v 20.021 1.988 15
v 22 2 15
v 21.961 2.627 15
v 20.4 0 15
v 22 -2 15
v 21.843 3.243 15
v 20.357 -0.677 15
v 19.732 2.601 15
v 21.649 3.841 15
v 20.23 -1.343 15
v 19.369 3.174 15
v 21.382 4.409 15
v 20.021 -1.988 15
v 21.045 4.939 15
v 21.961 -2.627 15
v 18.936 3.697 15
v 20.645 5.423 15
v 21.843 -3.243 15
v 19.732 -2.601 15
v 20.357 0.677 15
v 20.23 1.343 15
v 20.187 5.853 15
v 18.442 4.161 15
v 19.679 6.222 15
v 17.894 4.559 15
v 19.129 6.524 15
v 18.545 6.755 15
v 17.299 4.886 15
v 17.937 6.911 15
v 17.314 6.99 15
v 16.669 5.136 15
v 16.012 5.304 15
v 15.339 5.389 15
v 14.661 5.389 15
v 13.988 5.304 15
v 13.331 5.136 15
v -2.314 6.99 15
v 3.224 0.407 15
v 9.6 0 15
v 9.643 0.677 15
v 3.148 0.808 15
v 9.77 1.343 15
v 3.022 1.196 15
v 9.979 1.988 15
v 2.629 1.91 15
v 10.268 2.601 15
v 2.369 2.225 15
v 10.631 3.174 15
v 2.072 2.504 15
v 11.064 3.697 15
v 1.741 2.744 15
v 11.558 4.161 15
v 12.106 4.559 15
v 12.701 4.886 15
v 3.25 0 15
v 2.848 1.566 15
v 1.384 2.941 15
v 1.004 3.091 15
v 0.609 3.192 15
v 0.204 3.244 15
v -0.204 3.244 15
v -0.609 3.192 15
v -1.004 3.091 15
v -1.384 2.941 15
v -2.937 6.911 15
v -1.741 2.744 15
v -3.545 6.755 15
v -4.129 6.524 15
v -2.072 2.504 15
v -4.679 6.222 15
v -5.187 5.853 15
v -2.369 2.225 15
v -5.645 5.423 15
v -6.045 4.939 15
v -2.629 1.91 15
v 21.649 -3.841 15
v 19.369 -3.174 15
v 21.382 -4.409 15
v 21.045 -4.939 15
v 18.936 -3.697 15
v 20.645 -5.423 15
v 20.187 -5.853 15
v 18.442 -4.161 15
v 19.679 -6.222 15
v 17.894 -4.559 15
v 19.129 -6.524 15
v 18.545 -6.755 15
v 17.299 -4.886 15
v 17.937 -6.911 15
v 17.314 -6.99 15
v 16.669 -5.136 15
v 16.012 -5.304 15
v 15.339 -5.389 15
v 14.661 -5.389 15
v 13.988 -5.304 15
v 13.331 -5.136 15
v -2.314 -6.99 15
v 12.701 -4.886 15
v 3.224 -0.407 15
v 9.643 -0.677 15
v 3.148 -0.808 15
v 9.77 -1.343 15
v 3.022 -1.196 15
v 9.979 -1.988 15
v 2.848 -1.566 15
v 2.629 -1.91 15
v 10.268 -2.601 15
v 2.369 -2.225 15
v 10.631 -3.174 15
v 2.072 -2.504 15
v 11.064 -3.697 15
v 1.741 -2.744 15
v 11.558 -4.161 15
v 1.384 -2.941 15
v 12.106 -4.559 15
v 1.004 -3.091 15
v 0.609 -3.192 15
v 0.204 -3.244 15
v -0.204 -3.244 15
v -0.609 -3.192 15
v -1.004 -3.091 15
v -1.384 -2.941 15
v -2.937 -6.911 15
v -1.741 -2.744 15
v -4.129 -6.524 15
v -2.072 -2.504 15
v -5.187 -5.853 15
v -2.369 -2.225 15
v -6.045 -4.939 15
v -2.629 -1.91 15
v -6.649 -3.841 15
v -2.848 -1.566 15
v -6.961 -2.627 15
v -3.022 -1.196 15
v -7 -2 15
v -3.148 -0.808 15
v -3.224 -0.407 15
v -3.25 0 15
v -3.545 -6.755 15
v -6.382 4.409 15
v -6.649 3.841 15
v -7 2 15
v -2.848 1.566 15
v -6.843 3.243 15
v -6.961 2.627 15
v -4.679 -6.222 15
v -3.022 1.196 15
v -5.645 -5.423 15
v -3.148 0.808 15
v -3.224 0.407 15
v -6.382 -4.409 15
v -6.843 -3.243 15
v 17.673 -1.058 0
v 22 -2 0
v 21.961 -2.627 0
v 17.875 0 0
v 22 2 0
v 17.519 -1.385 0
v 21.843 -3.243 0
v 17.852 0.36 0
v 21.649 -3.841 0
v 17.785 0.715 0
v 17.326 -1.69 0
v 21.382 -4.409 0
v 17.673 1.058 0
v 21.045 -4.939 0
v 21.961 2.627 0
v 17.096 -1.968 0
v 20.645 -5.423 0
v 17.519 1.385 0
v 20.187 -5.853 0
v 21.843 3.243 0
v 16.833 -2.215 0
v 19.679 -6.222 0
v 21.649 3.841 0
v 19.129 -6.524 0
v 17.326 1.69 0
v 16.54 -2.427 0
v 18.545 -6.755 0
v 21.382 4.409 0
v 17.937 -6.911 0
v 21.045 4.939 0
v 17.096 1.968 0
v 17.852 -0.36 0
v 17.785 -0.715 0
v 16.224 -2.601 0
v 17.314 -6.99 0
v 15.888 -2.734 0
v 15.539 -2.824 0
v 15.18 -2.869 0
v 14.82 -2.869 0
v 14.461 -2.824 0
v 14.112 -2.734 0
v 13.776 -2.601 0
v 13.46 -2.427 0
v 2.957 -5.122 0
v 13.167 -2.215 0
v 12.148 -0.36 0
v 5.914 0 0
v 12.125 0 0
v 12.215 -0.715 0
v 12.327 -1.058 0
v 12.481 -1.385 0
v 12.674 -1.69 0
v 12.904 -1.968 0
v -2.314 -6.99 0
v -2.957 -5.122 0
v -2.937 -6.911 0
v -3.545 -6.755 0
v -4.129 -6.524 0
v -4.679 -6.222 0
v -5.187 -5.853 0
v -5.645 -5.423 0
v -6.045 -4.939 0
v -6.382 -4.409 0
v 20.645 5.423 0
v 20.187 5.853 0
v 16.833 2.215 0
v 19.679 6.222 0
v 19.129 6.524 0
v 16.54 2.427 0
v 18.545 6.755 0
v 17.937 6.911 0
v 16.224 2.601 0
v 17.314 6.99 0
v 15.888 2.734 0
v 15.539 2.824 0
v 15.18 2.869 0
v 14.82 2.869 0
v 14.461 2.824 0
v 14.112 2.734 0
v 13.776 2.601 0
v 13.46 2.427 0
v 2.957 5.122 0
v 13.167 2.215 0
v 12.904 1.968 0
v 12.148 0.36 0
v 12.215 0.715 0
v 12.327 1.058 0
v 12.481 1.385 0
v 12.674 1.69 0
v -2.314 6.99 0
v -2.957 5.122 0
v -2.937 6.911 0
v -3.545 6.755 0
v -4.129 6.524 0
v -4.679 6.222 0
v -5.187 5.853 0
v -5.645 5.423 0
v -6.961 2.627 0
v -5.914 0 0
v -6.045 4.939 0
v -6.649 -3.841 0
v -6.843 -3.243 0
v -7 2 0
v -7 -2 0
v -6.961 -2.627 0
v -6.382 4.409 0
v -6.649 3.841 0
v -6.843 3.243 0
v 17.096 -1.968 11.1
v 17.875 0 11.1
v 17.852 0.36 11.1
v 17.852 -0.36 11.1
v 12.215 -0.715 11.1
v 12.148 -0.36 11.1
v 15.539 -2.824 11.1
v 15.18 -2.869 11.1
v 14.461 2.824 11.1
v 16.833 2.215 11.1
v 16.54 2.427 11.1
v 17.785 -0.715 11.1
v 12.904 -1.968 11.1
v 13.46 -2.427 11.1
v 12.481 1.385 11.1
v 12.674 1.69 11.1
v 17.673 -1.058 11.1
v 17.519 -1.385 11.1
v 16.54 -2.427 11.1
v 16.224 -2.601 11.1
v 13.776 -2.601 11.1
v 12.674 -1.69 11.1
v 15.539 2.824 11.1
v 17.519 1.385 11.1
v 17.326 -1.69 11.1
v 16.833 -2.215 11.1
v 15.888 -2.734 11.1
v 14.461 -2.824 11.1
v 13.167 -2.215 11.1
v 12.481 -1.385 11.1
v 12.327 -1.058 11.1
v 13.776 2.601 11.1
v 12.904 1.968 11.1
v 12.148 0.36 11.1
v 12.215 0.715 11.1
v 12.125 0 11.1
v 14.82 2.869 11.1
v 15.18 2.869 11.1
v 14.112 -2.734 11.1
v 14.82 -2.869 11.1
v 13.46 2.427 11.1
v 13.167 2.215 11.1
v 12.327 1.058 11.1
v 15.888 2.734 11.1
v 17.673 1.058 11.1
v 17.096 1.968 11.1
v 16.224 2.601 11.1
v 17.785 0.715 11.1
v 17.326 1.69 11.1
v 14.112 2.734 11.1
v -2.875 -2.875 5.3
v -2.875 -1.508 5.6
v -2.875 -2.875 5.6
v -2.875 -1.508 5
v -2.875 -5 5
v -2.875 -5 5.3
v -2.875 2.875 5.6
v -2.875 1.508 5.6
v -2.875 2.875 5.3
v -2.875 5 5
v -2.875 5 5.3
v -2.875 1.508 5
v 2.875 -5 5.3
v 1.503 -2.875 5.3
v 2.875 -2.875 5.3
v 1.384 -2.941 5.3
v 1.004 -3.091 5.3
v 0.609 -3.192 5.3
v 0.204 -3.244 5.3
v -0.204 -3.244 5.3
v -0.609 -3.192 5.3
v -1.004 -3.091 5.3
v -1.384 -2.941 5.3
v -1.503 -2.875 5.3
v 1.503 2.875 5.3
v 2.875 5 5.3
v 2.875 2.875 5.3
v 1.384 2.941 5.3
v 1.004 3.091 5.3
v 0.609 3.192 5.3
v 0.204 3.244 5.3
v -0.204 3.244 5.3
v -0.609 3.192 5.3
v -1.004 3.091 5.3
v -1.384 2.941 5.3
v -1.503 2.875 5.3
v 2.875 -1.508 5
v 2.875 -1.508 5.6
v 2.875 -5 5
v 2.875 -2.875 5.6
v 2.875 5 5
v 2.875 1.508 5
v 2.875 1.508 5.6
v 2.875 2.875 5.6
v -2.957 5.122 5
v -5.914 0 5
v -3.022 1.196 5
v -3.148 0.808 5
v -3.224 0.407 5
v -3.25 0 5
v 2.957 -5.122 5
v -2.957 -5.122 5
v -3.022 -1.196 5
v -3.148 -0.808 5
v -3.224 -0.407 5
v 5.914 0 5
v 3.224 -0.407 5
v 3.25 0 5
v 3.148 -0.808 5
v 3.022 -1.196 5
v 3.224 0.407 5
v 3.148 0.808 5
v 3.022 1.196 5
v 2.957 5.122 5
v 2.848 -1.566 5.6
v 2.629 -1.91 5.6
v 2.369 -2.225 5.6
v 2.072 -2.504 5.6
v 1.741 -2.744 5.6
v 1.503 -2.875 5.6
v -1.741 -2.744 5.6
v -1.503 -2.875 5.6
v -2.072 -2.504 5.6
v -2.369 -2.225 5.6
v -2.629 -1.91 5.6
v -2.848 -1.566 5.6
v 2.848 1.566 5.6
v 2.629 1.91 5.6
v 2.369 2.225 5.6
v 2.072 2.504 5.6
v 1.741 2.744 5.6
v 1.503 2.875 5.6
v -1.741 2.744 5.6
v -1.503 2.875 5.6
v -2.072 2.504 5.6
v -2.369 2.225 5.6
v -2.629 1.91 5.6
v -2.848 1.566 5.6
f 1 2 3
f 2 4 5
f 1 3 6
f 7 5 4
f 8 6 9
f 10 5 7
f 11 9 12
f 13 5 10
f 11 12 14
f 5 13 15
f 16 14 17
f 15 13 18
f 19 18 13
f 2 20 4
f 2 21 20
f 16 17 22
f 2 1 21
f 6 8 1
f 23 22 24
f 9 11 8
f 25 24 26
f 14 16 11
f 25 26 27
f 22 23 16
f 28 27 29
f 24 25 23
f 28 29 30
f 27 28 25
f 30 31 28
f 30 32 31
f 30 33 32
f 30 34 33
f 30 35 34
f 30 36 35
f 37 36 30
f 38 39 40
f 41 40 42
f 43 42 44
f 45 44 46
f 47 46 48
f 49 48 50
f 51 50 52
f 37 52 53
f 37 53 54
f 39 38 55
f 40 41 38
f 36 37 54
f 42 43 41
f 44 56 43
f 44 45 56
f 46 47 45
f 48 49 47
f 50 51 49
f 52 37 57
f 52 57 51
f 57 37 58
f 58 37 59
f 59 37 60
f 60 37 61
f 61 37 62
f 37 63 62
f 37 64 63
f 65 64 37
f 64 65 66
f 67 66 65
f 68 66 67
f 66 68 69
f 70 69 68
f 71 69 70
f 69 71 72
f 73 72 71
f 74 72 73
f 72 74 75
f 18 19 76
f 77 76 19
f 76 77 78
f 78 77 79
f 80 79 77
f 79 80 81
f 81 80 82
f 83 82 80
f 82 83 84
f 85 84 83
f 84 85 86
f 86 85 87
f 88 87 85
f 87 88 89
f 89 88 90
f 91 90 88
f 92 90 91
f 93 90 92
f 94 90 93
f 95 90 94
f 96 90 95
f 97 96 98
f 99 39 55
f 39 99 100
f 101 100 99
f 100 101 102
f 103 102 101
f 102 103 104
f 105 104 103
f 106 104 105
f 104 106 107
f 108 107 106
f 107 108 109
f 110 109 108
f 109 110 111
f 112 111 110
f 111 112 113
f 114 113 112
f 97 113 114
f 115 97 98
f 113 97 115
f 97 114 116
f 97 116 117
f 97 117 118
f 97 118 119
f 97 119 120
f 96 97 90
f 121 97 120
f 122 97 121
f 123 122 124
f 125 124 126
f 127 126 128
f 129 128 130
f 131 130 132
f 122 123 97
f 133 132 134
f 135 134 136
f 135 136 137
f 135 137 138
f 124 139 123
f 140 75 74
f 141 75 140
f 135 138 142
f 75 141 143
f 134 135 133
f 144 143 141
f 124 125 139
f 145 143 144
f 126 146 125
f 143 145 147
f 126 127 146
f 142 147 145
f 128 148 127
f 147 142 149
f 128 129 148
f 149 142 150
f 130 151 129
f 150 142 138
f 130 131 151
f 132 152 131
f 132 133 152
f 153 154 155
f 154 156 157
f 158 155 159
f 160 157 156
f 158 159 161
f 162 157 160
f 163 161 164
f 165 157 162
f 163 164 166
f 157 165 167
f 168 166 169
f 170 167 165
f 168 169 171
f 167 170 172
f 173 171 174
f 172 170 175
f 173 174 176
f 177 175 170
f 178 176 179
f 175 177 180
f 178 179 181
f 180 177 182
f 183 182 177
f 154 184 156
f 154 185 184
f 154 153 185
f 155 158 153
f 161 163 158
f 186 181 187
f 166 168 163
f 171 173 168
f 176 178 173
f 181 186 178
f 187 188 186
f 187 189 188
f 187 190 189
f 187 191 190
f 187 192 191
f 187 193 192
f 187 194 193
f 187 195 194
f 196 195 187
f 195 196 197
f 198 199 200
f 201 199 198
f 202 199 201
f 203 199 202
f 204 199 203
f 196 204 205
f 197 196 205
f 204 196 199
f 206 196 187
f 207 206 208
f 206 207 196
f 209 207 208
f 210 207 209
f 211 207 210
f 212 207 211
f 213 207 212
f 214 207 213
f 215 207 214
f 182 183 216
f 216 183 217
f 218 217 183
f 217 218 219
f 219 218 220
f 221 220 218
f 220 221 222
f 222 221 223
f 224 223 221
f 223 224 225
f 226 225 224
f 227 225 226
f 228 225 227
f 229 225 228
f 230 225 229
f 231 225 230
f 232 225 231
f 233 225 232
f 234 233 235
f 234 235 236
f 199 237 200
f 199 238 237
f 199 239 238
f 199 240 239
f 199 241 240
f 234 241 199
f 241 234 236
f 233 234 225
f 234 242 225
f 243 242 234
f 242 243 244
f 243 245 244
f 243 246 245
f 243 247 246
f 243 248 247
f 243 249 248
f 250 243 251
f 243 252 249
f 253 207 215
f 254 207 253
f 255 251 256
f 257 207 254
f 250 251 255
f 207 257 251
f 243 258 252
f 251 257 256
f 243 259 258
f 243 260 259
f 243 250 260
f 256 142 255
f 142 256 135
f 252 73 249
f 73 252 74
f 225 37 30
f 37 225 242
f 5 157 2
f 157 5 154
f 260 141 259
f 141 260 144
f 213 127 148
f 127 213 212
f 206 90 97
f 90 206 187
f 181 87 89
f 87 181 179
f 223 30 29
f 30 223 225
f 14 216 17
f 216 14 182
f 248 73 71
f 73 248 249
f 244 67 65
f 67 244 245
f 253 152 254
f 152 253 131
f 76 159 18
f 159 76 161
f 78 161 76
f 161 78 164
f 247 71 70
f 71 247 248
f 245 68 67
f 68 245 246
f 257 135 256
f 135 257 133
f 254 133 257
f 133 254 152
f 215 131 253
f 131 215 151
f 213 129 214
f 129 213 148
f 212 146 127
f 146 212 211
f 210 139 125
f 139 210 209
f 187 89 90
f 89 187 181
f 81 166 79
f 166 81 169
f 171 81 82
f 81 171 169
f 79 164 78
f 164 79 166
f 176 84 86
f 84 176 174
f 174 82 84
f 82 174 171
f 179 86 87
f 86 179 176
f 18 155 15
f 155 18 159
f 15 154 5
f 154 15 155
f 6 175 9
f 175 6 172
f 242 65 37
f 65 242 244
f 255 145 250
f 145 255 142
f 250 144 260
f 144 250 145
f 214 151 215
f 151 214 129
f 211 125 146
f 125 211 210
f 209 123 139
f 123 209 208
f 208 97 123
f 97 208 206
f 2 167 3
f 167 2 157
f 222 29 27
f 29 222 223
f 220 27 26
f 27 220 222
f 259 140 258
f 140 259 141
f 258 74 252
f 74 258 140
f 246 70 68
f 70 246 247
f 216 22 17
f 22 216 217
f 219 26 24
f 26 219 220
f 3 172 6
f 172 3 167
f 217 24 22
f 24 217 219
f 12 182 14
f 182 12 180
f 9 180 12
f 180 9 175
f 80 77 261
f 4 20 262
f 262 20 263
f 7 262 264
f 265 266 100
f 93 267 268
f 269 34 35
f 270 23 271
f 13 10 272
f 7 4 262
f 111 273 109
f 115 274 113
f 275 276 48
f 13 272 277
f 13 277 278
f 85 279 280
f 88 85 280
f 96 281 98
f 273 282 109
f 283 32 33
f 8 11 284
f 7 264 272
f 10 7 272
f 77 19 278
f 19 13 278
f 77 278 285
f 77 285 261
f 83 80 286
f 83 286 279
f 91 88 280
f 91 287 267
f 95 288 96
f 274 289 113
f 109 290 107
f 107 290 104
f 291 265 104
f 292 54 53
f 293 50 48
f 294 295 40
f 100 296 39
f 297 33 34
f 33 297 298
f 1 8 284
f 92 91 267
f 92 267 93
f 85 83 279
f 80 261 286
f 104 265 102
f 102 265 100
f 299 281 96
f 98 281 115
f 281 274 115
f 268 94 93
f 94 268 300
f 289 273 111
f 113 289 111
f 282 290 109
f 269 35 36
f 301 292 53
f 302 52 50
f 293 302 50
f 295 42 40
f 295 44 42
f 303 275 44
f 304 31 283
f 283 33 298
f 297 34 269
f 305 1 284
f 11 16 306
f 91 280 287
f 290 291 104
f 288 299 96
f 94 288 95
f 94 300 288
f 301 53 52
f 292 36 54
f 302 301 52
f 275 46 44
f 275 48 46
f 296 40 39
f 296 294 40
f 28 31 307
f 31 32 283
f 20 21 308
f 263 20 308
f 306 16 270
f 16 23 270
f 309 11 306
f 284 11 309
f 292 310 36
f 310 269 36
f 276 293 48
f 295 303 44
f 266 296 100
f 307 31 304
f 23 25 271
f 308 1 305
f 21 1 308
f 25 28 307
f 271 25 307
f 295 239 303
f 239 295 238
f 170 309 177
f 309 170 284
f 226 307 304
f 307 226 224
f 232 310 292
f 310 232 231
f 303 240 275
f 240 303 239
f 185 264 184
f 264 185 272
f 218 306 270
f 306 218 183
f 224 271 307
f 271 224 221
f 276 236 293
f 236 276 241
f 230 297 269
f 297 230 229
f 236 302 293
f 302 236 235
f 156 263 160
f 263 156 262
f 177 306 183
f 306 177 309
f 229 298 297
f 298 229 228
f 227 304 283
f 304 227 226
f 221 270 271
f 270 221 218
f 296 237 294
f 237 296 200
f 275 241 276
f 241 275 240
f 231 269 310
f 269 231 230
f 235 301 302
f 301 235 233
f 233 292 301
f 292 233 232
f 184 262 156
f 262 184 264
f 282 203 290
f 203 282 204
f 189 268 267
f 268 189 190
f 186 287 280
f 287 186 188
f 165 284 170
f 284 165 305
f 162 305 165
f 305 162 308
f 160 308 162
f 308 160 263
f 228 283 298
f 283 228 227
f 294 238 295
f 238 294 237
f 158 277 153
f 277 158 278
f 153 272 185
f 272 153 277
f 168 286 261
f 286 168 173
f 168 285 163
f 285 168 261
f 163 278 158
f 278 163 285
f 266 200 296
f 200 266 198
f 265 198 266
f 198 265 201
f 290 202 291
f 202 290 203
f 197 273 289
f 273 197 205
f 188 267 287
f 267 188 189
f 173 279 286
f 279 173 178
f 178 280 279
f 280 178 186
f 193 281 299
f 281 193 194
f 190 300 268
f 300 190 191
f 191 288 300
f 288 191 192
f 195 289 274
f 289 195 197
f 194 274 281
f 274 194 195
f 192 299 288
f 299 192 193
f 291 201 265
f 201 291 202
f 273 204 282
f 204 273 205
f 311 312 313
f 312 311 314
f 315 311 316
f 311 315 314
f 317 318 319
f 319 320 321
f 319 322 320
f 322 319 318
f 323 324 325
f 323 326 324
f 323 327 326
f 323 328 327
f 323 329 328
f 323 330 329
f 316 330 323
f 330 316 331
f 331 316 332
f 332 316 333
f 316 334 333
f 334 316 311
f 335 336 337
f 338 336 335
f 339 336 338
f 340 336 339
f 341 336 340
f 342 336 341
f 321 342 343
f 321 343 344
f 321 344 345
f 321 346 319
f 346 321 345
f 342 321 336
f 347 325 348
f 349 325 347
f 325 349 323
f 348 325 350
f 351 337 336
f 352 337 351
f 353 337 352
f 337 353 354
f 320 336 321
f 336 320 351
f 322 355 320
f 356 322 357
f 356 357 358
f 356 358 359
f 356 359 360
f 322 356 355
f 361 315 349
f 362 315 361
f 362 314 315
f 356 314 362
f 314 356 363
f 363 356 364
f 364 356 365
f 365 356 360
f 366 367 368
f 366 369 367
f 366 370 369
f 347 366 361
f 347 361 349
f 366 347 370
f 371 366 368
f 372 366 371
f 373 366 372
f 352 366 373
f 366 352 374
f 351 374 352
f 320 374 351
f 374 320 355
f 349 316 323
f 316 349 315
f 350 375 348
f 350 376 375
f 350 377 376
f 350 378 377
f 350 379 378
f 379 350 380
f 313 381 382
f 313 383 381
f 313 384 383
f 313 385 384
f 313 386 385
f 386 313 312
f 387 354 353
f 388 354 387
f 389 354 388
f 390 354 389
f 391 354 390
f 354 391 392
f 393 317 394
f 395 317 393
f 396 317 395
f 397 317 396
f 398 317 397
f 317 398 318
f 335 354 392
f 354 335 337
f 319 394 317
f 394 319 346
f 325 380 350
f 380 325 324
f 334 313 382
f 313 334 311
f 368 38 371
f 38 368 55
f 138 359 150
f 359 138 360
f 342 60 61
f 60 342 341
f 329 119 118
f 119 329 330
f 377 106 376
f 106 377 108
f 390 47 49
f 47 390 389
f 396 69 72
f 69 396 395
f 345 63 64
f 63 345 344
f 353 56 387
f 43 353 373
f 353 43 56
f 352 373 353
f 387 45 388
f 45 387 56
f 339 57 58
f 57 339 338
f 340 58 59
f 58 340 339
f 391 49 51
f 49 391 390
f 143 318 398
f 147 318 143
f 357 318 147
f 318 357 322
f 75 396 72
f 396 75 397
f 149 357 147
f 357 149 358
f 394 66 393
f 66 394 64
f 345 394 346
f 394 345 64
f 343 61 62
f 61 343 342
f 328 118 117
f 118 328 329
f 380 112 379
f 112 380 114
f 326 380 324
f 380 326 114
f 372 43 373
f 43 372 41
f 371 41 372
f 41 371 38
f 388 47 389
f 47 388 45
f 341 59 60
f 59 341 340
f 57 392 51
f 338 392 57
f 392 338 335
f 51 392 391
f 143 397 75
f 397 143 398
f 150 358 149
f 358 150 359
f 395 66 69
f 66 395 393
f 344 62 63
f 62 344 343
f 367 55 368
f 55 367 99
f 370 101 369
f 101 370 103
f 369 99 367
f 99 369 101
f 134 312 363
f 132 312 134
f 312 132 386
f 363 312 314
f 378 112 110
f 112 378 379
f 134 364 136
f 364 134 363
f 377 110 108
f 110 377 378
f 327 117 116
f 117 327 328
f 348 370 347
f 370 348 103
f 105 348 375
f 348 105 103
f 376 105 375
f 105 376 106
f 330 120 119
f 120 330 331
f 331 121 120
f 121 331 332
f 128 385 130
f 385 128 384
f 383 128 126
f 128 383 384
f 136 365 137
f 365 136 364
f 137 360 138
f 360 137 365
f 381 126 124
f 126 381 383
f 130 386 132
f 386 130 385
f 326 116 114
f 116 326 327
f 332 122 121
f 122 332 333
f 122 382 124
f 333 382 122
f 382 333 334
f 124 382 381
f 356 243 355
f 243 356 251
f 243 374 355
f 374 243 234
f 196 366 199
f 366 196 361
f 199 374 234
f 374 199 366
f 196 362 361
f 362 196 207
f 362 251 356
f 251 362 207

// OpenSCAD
$fn = 50;


difference() {
	union() {
		cylinder(h = 15, r = 7.0000000000);
		translate(v = [7.5000000000, 0.0000000000, 0]) {
			hull() {
				translate(v = [-9.5000000000, 2.0000000000, 0]) {
					cylinder(h = 15, r = 5);
				}
				translate(v = [9.5000000000, 2.0000000000, 0]) {
					cylinder(h = 15, r = 5);
				}
				translate(v = [-9.5000000000, -2.0000000000, 0]) {
					cylinder(h = 15, r = 5);
				}
				translate(v = [9.5000000000, -2.0000000000, 0]) {
					cylinder(h = 15, r = 5);
				}
			}
		}
		translate(v = [7.5000000000, 0.0000000000, 0]) {
			hull() {
				translate(v = [-9.5000000000, 2.0000000000, 0]) {
					cylinder(h = 15, r = 5);
				}
				translate(v = [9.5000000000, 2.0000000000, 0]) {
					cylinder(h = 15, r = 5);
				}
				translate(v = [-9.5000000000, -2.0000000000, 0]) {
					cylinder(h = 15, r = 5);
				}
				translate(v = [9.5000000000, -2.0000000000, 0]) {
					cylinder(h = 15, r = 5);
				}
			}
		}
	}
	union() {
		translate(v = [15.0000000000, 0.0000000000, 15]) {
			rotate(a = [0, 0, 0]) {
				difference() {
					union() {
						#translate(v = [0, 0, -15.0000000000]) {
							cylinder(h = 15, r = 2.6000000000);
						}
						#translate(v = [0, 0, -3.9000000000]) {
							cylinder(h = 3.9000000000, r1 = 2.8750000000, r2 = 5.4000000000);
						}
						#translate(v = [0, 0, -15.0000000000]) {
							cylinder(h = 15, r = 2.8750000000);
						}
						#translate(v = [0, 0, -15.0000000000]) {
							cylinder(h = 15, r = 2.6000000000);
						}
					}
					union();
				}
			}
		}
		translate(v = [15.0000000000, 0.0000000000, 15]) {
			rotate(a = [0, 0, 0]) {
				difference() {
					union() {
						#translate(v = [0, 0, -15.0000000000]) {
							cylinder(h = 15, r = 2.6000000000);
						}
						#translate(v = [0, 0, -3.9000000000]) {
							cylinder(h = 3.9000000000, r1 = 2.8750000000, r2 = 5.4000000000);
						}
						#translate(v = [0, 0, -15.0000000000]) {
							cylinder(h = 15, r = 2.8750000000);
						}
						#translate(v = [0, 0, -15.0000000000]) {
							cylinder(h = 15, r = 2.6000000000);
						}
					}
					union();
				}
			}
		}
		translate(v = [0.0000000000, 0.0000000000, 0]) {
			rotate(a = [0, 0, 0]) {
				difference() {
					union() {
						#translate(v = [-2.8750000000, -5.0000000000, -0.3000000000]) {
							cube(size = [5.7500000000, 10, 0.3000000000]);
						}
						#translate(v = [-2.8750000000, -2.8750000000, -0.6000000000]) {
							cube(size = [5.7500000000, 5.7500000000, 0.3000000000]);
						}
						#translate(v = [-2.8750000000, -5.0000000000, 5]) {
							cube(size = [5.7500000000, 10, 0.3000000000]);
						}
						#translate(v = [-2.8750000000, -2.8750000000, 5.3000000000]) {
							cube(size = [5.7500000000, 5.7500000000, 0.3000000000]);
						}
						#translate(v = [0, 0, -100.0000000000]) {
							cylinder(h = 200, r = 3.2500000000);
						}
						#linear_extrude(height = 5) {
							polygon(points = [[5.9142500000, 0.0000000000], [2.9571250000, 5.1218907443], [-2.9571250000, 5.1218907443], [-5.9142500000, 0.0000000000], [-2.9571250000, -5.1218907443], [2.9571250000, -5.1218907443]]);
						}
						#translate(v = [-2.8750000000, -5.0000000000, -0.3000000000]) {
							cube(size = [5.7500000000, 10, 0.3000000000]);
						}
						#translate(v = [-2.8750000000, -2.8750000000, -0.6000000000]) {
							cube(size = [5.7500000000, 5.7500000000, 0.3000000000]);
						}
						#translate(v = [-2.8750000000, -5.0000000000, 5]) {
							cube(size = [5.7500000000, 10, 0.3000000000]);
						}
						#translate(v = [-2.8750000000, -2.8750000000, 5.3000000000]) {
							cube(size = [5.7500000000, 5.7500000000, 0.3000000000]);
						}
						#translate(v = [0, 0, -100.0000000000]) {
							cylinder(h = 200, r = 3.2500000000);
						}
						#translate(v = [-2.8750000000, -5.0000000000, -0.3000000000]) {
							cube(size = [5.7500000000, 10, 0.3000000000]);
						}
						#translate(v = [-2.8750000000, -2.8750000000, -0.6000000000]) {
							cube(size = [5.7500000000, 5.7500000000, 0.3000000000]);
						}
						#translate(v = [-2.8750000000, -5.0000000000, 5]) {
							cube(size = [5.7500000000, 10, 0.3000000000]);
						}
						#translate(v = [-2.8750000000, -2.8750000000, 5.3000000000]) {
							cube(size = [5.7500000000, 5.7500000000, 0.3000000000]);
						}
						#translate(v = [0, 0, -100.0000000000]) {
							cylinder(h = 200, r = 3.2500000000);
						}
					}
					union();
				}
			}
		}
		translate(v = [0, 0, -100]) {
			cylinder(h = 200, r = 3.2500000000);
		}
		translate(v = [0, 0, -100]) {
			cylinder(h = 200, r = 1.8000000000);
		}
	}
}
